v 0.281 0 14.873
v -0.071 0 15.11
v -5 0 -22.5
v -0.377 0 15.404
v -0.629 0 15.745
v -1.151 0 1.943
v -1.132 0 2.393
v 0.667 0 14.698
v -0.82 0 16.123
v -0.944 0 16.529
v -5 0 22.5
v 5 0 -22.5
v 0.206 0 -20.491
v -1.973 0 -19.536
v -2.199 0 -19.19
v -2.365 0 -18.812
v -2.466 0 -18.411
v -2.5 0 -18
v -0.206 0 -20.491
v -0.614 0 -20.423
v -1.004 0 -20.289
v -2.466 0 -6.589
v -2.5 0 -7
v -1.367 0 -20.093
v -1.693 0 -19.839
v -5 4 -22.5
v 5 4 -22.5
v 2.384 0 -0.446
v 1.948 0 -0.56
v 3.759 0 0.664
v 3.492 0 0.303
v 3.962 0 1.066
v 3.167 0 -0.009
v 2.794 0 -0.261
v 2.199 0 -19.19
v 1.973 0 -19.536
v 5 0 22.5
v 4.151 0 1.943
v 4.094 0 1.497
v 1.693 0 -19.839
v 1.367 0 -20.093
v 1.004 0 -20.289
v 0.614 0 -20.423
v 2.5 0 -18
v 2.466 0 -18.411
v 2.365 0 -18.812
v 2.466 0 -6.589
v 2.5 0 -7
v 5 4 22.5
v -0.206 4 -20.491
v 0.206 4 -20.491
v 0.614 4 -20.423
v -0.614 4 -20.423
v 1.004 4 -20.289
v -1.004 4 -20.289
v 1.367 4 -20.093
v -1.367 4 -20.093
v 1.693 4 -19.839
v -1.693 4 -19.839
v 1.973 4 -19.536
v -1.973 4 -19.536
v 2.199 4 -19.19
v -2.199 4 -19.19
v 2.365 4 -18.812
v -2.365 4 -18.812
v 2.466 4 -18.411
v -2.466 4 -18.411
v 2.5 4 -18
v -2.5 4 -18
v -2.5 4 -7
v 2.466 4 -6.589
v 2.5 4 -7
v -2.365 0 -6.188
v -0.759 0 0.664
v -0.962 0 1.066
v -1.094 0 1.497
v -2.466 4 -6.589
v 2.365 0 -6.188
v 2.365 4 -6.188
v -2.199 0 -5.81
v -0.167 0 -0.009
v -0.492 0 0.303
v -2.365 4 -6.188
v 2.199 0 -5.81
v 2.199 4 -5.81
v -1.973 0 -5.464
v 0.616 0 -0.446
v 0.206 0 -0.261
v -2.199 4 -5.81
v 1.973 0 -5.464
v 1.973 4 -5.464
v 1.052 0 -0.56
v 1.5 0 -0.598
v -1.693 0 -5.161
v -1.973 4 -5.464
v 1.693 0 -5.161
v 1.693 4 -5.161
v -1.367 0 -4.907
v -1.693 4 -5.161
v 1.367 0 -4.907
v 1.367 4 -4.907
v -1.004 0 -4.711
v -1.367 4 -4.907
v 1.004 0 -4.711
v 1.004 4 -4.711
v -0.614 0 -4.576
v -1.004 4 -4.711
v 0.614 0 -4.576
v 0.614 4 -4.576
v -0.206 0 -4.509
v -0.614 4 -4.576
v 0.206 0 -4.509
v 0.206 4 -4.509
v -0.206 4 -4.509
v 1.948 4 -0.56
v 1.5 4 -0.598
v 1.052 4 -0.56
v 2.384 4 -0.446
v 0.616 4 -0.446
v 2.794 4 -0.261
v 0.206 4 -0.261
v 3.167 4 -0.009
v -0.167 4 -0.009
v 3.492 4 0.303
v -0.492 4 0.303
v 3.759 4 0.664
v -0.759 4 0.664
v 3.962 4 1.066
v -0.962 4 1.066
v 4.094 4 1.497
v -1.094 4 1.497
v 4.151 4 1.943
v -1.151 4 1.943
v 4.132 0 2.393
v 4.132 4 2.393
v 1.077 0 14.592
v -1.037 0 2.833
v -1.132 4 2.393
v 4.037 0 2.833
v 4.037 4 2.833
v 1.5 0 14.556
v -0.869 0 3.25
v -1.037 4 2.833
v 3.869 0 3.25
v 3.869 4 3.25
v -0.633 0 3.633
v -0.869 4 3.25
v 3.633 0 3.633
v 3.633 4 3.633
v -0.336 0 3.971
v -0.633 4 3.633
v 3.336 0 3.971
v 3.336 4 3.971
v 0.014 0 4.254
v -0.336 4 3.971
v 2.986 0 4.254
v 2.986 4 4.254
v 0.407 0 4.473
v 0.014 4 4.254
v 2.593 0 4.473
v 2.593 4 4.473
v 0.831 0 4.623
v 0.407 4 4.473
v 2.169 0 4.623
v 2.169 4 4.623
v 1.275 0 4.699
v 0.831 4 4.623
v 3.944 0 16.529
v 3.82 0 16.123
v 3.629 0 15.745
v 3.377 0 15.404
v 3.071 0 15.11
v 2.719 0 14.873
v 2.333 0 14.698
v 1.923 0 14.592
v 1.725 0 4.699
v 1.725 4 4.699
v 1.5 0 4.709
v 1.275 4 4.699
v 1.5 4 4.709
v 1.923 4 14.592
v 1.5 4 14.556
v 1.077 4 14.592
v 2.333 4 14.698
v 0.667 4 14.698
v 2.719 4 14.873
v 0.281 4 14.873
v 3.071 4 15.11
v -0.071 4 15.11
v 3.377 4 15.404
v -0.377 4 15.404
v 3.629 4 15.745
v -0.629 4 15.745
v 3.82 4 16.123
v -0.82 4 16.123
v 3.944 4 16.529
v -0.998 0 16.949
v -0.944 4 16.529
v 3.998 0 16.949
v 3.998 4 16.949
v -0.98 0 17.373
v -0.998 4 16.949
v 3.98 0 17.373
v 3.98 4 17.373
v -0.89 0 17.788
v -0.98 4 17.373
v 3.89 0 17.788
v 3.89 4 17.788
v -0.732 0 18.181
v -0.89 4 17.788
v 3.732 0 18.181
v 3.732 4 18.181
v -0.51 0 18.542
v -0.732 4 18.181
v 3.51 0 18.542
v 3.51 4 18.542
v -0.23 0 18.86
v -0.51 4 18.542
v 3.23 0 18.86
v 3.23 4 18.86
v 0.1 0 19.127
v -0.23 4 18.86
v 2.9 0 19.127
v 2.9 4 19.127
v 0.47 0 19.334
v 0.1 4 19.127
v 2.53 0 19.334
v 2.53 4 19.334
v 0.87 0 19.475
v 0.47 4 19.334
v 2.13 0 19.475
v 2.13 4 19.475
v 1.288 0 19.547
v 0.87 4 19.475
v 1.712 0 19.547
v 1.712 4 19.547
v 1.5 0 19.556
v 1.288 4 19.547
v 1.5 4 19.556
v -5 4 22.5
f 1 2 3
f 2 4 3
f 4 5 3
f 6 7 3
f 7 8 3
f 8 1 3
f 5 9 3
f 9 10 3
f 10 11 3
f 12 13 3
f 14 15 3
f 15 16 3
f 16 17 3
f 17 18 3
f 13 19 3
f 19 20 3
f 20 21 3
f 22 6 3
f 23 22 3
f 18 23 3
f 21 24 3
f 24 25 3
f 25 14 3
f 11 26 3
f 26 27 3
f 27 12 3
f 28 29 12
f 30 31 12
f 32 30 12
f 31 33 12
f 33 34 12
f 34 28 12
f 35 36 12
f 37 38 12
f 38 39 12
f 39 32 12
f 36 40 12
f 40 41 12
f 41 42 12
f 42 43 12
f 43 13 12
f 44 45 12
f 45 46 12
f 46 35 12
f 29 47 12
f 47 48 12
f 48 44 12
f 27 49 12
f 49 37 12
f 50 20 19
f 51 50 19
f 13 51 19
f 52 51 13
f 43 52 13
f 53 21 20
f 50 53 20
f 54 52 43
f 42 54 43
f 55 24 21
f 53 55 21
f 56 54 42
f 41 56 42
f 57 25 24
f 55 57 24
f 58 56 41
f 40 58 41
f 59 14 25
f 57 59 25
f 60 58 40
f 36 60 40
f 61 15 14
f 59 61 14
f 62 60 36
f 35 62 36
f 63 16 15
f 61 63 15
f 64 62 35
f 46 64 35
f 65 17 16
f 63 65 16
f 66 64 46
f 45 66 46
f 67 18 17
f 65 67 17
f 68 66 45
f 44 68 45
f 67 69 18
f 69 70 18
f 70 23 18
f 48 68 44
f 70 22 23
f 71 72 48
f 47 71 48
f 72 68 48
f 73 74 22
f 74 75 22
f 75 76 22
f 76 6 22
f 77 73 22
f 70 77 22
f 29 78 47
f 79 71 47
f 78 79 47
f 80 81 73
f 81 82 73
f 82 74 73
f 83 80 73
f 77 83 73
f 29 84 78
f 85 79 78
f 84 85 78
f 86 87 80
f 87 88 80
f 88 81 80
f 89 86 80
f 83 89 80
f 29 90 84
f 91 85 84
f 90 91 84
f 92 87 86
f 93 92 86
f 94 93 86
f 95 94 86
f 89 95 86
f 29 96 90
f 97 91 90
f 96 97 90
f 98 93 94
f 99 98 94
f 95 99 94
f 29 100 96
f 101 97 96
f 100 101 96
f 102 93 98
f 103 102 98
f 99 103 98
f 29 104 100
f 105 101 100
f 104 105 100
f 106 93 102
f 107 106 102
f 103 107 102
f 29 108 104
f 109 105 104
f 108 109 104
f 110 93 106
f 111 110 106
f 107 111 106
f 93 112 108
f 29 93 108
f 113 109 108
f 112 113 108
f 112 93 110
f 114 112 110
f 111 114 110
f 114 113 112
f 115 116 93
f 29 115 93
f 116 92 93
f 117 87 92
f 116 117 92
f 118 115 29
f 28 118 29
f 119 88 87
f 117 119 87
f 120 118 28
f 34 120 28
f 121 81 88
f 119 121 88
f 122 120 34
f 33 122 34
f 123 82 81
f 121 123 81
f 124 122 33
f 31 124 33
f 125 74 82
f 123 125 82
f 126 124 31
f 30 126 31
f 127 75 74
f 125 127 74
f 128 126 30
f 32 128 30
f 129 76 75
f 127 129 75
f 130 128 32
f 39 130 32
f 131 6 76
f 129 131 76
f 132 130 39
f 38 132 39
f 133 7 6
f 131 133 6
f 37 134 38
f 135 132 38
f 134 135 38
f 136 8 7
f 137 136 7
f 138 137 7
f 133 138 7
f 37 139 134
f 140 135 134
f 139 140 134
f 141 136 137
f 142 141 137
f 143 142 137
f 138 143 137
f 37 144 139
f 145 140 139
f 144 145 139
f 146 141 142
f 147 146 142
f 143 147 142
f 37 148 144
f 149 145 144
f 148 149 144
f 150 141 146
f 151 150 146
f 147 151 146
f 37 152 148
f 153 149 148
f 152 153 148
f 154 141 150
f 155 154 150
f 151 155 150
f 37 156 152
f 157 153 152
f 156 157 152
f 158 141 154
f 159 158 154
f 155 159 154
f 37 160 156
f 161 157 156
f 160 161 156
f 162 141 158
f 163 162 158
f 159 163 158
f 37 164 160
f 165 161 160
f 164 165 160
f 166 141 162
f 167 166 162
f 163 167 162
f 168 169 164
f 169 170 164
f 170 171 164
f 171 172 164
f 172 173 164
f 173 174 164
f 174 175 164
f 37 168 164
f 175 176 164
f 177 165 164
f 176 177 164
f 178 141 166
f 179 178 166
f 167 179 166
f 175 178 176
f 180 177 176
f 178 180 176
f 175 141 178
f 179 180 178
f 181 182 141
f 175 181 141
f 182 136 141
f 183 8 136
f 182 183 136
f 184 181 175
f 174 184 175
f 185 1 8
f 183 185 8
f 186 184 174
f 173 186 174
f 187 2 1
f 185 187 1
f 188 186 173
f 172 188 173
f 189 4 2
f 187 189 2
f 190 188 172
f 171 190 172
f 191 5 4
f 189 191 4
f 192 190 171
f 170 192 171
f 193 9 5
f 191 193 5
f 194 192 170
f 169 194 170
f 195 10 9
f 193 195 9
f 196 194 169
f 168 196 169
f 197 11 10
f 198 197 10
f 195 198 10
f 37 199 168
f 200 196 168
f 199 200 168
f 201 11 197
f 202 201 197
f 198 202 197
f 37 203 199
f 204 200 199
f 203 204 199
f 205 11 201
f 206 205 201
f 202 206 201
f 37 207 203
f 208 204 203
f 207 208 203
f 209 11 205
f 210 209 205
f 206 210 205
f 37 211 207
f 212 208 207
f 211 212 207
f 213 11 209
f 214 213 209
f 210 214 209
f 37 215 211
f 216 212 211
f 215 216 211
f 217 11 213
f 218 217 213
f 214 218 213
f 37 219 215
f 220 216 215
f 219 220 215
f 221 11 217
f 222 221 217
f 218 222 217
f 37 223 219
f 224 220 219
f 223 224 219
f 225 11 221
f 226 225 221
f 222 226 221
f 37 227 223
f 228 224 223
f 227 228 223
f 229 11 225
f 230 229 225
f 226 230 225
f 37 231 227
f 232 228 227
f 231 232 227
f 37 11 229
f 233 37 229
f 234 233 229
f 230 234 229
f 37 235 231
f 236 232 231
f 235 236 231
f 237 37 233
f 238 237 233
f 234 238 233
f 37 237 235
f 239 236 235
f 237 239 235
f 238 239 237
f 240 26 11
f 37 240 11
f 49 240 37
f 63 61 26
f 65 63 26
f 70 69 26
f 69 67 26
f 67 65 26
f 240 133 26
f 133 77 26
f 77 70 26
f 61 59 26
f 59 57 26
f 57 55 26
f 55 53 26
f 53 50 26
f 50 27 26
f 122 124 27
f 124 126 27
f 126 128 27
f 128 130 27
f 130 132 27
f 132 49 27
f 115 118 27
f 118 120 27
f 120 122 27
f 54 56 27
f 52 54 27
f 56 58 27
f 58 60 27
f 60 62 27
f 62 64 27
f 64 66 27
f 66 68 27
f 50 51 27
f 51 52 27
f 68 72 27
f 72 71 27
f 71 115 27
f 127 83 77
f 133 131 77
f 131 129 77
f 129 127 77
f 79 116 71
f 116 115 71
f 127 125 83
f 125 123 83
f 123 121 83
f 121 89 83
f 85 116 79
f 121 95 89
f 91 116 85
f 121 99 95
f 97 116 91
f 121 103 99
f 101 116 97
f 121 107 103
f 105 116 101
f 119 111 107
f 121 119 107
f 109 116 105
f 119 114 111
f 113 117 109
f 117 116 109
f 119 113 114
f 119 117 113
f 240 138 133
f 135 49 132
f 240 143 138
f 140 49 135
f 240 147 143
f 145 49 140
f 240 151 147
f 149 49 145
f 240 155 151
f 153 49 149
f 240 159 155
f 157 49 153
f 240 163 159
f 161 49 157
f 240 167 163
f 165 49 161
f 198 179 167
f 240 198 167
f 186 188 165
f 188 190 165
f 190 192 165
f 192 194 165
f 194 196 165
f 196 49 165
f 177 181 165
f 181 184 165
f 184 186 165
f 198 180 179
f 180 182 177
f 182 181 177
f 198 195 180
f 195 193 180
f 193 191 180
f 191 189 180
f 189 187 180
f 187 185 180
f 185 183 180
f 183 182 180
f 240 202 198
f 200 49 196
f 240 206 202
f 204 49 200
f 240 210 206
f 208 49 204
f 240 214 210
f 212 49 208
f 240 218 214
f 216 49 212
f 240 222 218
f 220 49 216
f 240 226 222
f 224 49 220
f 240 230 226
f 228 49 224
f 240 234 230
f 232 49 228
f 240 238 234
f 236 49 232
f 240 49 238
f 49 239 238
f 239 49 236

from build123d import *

# Parameters (mm, degrees)
SKETCH_1_W      = 10
SKETCH_1_H      = 45
SKETCH_1_R      = 2.653323097
SKETCH_1_R_2    = 2.5
EXTRUDE_1_DEPTH = 4


with BuildPart() as part:
    # 草圖1 → 填料-伸長1 (new body)
    with BuildSketch(Plane(origin=(0, 0, 0), x_dir=(1, 0, 0), z_dir=(0, 1, 0))):
        Rectangle(SKETCH_1_W, SKETCH_1_H)
        with Locations(Location((1.5, -2.055555556, 0), (0, 0, 270))):
            Circle(SKETCH_1_R, mode=Mode.SUBTRACT)
        with Locations(Location((1.5, -17.055555556, 0), (0, 0, 270))):
            Circle(SKETCH_1_R_2, mode=Mode.SUBTRACT)
        with BuildLine():
            Line((2.5, 18), (2.5, 7))
            ThreePointArc((2.5, 7), (0, 4.5), (-2.5, 7))
            Line((-2.5, 7), (-2.5, 18))
            ThreePointArc((-2.5, 18), (0, 20.5), (2.5, 18))
        make_face(mode=Mode.SUBTRACT)
    extrude(amount=EXTRUDE_1_DEPTH)


solid = part.part
